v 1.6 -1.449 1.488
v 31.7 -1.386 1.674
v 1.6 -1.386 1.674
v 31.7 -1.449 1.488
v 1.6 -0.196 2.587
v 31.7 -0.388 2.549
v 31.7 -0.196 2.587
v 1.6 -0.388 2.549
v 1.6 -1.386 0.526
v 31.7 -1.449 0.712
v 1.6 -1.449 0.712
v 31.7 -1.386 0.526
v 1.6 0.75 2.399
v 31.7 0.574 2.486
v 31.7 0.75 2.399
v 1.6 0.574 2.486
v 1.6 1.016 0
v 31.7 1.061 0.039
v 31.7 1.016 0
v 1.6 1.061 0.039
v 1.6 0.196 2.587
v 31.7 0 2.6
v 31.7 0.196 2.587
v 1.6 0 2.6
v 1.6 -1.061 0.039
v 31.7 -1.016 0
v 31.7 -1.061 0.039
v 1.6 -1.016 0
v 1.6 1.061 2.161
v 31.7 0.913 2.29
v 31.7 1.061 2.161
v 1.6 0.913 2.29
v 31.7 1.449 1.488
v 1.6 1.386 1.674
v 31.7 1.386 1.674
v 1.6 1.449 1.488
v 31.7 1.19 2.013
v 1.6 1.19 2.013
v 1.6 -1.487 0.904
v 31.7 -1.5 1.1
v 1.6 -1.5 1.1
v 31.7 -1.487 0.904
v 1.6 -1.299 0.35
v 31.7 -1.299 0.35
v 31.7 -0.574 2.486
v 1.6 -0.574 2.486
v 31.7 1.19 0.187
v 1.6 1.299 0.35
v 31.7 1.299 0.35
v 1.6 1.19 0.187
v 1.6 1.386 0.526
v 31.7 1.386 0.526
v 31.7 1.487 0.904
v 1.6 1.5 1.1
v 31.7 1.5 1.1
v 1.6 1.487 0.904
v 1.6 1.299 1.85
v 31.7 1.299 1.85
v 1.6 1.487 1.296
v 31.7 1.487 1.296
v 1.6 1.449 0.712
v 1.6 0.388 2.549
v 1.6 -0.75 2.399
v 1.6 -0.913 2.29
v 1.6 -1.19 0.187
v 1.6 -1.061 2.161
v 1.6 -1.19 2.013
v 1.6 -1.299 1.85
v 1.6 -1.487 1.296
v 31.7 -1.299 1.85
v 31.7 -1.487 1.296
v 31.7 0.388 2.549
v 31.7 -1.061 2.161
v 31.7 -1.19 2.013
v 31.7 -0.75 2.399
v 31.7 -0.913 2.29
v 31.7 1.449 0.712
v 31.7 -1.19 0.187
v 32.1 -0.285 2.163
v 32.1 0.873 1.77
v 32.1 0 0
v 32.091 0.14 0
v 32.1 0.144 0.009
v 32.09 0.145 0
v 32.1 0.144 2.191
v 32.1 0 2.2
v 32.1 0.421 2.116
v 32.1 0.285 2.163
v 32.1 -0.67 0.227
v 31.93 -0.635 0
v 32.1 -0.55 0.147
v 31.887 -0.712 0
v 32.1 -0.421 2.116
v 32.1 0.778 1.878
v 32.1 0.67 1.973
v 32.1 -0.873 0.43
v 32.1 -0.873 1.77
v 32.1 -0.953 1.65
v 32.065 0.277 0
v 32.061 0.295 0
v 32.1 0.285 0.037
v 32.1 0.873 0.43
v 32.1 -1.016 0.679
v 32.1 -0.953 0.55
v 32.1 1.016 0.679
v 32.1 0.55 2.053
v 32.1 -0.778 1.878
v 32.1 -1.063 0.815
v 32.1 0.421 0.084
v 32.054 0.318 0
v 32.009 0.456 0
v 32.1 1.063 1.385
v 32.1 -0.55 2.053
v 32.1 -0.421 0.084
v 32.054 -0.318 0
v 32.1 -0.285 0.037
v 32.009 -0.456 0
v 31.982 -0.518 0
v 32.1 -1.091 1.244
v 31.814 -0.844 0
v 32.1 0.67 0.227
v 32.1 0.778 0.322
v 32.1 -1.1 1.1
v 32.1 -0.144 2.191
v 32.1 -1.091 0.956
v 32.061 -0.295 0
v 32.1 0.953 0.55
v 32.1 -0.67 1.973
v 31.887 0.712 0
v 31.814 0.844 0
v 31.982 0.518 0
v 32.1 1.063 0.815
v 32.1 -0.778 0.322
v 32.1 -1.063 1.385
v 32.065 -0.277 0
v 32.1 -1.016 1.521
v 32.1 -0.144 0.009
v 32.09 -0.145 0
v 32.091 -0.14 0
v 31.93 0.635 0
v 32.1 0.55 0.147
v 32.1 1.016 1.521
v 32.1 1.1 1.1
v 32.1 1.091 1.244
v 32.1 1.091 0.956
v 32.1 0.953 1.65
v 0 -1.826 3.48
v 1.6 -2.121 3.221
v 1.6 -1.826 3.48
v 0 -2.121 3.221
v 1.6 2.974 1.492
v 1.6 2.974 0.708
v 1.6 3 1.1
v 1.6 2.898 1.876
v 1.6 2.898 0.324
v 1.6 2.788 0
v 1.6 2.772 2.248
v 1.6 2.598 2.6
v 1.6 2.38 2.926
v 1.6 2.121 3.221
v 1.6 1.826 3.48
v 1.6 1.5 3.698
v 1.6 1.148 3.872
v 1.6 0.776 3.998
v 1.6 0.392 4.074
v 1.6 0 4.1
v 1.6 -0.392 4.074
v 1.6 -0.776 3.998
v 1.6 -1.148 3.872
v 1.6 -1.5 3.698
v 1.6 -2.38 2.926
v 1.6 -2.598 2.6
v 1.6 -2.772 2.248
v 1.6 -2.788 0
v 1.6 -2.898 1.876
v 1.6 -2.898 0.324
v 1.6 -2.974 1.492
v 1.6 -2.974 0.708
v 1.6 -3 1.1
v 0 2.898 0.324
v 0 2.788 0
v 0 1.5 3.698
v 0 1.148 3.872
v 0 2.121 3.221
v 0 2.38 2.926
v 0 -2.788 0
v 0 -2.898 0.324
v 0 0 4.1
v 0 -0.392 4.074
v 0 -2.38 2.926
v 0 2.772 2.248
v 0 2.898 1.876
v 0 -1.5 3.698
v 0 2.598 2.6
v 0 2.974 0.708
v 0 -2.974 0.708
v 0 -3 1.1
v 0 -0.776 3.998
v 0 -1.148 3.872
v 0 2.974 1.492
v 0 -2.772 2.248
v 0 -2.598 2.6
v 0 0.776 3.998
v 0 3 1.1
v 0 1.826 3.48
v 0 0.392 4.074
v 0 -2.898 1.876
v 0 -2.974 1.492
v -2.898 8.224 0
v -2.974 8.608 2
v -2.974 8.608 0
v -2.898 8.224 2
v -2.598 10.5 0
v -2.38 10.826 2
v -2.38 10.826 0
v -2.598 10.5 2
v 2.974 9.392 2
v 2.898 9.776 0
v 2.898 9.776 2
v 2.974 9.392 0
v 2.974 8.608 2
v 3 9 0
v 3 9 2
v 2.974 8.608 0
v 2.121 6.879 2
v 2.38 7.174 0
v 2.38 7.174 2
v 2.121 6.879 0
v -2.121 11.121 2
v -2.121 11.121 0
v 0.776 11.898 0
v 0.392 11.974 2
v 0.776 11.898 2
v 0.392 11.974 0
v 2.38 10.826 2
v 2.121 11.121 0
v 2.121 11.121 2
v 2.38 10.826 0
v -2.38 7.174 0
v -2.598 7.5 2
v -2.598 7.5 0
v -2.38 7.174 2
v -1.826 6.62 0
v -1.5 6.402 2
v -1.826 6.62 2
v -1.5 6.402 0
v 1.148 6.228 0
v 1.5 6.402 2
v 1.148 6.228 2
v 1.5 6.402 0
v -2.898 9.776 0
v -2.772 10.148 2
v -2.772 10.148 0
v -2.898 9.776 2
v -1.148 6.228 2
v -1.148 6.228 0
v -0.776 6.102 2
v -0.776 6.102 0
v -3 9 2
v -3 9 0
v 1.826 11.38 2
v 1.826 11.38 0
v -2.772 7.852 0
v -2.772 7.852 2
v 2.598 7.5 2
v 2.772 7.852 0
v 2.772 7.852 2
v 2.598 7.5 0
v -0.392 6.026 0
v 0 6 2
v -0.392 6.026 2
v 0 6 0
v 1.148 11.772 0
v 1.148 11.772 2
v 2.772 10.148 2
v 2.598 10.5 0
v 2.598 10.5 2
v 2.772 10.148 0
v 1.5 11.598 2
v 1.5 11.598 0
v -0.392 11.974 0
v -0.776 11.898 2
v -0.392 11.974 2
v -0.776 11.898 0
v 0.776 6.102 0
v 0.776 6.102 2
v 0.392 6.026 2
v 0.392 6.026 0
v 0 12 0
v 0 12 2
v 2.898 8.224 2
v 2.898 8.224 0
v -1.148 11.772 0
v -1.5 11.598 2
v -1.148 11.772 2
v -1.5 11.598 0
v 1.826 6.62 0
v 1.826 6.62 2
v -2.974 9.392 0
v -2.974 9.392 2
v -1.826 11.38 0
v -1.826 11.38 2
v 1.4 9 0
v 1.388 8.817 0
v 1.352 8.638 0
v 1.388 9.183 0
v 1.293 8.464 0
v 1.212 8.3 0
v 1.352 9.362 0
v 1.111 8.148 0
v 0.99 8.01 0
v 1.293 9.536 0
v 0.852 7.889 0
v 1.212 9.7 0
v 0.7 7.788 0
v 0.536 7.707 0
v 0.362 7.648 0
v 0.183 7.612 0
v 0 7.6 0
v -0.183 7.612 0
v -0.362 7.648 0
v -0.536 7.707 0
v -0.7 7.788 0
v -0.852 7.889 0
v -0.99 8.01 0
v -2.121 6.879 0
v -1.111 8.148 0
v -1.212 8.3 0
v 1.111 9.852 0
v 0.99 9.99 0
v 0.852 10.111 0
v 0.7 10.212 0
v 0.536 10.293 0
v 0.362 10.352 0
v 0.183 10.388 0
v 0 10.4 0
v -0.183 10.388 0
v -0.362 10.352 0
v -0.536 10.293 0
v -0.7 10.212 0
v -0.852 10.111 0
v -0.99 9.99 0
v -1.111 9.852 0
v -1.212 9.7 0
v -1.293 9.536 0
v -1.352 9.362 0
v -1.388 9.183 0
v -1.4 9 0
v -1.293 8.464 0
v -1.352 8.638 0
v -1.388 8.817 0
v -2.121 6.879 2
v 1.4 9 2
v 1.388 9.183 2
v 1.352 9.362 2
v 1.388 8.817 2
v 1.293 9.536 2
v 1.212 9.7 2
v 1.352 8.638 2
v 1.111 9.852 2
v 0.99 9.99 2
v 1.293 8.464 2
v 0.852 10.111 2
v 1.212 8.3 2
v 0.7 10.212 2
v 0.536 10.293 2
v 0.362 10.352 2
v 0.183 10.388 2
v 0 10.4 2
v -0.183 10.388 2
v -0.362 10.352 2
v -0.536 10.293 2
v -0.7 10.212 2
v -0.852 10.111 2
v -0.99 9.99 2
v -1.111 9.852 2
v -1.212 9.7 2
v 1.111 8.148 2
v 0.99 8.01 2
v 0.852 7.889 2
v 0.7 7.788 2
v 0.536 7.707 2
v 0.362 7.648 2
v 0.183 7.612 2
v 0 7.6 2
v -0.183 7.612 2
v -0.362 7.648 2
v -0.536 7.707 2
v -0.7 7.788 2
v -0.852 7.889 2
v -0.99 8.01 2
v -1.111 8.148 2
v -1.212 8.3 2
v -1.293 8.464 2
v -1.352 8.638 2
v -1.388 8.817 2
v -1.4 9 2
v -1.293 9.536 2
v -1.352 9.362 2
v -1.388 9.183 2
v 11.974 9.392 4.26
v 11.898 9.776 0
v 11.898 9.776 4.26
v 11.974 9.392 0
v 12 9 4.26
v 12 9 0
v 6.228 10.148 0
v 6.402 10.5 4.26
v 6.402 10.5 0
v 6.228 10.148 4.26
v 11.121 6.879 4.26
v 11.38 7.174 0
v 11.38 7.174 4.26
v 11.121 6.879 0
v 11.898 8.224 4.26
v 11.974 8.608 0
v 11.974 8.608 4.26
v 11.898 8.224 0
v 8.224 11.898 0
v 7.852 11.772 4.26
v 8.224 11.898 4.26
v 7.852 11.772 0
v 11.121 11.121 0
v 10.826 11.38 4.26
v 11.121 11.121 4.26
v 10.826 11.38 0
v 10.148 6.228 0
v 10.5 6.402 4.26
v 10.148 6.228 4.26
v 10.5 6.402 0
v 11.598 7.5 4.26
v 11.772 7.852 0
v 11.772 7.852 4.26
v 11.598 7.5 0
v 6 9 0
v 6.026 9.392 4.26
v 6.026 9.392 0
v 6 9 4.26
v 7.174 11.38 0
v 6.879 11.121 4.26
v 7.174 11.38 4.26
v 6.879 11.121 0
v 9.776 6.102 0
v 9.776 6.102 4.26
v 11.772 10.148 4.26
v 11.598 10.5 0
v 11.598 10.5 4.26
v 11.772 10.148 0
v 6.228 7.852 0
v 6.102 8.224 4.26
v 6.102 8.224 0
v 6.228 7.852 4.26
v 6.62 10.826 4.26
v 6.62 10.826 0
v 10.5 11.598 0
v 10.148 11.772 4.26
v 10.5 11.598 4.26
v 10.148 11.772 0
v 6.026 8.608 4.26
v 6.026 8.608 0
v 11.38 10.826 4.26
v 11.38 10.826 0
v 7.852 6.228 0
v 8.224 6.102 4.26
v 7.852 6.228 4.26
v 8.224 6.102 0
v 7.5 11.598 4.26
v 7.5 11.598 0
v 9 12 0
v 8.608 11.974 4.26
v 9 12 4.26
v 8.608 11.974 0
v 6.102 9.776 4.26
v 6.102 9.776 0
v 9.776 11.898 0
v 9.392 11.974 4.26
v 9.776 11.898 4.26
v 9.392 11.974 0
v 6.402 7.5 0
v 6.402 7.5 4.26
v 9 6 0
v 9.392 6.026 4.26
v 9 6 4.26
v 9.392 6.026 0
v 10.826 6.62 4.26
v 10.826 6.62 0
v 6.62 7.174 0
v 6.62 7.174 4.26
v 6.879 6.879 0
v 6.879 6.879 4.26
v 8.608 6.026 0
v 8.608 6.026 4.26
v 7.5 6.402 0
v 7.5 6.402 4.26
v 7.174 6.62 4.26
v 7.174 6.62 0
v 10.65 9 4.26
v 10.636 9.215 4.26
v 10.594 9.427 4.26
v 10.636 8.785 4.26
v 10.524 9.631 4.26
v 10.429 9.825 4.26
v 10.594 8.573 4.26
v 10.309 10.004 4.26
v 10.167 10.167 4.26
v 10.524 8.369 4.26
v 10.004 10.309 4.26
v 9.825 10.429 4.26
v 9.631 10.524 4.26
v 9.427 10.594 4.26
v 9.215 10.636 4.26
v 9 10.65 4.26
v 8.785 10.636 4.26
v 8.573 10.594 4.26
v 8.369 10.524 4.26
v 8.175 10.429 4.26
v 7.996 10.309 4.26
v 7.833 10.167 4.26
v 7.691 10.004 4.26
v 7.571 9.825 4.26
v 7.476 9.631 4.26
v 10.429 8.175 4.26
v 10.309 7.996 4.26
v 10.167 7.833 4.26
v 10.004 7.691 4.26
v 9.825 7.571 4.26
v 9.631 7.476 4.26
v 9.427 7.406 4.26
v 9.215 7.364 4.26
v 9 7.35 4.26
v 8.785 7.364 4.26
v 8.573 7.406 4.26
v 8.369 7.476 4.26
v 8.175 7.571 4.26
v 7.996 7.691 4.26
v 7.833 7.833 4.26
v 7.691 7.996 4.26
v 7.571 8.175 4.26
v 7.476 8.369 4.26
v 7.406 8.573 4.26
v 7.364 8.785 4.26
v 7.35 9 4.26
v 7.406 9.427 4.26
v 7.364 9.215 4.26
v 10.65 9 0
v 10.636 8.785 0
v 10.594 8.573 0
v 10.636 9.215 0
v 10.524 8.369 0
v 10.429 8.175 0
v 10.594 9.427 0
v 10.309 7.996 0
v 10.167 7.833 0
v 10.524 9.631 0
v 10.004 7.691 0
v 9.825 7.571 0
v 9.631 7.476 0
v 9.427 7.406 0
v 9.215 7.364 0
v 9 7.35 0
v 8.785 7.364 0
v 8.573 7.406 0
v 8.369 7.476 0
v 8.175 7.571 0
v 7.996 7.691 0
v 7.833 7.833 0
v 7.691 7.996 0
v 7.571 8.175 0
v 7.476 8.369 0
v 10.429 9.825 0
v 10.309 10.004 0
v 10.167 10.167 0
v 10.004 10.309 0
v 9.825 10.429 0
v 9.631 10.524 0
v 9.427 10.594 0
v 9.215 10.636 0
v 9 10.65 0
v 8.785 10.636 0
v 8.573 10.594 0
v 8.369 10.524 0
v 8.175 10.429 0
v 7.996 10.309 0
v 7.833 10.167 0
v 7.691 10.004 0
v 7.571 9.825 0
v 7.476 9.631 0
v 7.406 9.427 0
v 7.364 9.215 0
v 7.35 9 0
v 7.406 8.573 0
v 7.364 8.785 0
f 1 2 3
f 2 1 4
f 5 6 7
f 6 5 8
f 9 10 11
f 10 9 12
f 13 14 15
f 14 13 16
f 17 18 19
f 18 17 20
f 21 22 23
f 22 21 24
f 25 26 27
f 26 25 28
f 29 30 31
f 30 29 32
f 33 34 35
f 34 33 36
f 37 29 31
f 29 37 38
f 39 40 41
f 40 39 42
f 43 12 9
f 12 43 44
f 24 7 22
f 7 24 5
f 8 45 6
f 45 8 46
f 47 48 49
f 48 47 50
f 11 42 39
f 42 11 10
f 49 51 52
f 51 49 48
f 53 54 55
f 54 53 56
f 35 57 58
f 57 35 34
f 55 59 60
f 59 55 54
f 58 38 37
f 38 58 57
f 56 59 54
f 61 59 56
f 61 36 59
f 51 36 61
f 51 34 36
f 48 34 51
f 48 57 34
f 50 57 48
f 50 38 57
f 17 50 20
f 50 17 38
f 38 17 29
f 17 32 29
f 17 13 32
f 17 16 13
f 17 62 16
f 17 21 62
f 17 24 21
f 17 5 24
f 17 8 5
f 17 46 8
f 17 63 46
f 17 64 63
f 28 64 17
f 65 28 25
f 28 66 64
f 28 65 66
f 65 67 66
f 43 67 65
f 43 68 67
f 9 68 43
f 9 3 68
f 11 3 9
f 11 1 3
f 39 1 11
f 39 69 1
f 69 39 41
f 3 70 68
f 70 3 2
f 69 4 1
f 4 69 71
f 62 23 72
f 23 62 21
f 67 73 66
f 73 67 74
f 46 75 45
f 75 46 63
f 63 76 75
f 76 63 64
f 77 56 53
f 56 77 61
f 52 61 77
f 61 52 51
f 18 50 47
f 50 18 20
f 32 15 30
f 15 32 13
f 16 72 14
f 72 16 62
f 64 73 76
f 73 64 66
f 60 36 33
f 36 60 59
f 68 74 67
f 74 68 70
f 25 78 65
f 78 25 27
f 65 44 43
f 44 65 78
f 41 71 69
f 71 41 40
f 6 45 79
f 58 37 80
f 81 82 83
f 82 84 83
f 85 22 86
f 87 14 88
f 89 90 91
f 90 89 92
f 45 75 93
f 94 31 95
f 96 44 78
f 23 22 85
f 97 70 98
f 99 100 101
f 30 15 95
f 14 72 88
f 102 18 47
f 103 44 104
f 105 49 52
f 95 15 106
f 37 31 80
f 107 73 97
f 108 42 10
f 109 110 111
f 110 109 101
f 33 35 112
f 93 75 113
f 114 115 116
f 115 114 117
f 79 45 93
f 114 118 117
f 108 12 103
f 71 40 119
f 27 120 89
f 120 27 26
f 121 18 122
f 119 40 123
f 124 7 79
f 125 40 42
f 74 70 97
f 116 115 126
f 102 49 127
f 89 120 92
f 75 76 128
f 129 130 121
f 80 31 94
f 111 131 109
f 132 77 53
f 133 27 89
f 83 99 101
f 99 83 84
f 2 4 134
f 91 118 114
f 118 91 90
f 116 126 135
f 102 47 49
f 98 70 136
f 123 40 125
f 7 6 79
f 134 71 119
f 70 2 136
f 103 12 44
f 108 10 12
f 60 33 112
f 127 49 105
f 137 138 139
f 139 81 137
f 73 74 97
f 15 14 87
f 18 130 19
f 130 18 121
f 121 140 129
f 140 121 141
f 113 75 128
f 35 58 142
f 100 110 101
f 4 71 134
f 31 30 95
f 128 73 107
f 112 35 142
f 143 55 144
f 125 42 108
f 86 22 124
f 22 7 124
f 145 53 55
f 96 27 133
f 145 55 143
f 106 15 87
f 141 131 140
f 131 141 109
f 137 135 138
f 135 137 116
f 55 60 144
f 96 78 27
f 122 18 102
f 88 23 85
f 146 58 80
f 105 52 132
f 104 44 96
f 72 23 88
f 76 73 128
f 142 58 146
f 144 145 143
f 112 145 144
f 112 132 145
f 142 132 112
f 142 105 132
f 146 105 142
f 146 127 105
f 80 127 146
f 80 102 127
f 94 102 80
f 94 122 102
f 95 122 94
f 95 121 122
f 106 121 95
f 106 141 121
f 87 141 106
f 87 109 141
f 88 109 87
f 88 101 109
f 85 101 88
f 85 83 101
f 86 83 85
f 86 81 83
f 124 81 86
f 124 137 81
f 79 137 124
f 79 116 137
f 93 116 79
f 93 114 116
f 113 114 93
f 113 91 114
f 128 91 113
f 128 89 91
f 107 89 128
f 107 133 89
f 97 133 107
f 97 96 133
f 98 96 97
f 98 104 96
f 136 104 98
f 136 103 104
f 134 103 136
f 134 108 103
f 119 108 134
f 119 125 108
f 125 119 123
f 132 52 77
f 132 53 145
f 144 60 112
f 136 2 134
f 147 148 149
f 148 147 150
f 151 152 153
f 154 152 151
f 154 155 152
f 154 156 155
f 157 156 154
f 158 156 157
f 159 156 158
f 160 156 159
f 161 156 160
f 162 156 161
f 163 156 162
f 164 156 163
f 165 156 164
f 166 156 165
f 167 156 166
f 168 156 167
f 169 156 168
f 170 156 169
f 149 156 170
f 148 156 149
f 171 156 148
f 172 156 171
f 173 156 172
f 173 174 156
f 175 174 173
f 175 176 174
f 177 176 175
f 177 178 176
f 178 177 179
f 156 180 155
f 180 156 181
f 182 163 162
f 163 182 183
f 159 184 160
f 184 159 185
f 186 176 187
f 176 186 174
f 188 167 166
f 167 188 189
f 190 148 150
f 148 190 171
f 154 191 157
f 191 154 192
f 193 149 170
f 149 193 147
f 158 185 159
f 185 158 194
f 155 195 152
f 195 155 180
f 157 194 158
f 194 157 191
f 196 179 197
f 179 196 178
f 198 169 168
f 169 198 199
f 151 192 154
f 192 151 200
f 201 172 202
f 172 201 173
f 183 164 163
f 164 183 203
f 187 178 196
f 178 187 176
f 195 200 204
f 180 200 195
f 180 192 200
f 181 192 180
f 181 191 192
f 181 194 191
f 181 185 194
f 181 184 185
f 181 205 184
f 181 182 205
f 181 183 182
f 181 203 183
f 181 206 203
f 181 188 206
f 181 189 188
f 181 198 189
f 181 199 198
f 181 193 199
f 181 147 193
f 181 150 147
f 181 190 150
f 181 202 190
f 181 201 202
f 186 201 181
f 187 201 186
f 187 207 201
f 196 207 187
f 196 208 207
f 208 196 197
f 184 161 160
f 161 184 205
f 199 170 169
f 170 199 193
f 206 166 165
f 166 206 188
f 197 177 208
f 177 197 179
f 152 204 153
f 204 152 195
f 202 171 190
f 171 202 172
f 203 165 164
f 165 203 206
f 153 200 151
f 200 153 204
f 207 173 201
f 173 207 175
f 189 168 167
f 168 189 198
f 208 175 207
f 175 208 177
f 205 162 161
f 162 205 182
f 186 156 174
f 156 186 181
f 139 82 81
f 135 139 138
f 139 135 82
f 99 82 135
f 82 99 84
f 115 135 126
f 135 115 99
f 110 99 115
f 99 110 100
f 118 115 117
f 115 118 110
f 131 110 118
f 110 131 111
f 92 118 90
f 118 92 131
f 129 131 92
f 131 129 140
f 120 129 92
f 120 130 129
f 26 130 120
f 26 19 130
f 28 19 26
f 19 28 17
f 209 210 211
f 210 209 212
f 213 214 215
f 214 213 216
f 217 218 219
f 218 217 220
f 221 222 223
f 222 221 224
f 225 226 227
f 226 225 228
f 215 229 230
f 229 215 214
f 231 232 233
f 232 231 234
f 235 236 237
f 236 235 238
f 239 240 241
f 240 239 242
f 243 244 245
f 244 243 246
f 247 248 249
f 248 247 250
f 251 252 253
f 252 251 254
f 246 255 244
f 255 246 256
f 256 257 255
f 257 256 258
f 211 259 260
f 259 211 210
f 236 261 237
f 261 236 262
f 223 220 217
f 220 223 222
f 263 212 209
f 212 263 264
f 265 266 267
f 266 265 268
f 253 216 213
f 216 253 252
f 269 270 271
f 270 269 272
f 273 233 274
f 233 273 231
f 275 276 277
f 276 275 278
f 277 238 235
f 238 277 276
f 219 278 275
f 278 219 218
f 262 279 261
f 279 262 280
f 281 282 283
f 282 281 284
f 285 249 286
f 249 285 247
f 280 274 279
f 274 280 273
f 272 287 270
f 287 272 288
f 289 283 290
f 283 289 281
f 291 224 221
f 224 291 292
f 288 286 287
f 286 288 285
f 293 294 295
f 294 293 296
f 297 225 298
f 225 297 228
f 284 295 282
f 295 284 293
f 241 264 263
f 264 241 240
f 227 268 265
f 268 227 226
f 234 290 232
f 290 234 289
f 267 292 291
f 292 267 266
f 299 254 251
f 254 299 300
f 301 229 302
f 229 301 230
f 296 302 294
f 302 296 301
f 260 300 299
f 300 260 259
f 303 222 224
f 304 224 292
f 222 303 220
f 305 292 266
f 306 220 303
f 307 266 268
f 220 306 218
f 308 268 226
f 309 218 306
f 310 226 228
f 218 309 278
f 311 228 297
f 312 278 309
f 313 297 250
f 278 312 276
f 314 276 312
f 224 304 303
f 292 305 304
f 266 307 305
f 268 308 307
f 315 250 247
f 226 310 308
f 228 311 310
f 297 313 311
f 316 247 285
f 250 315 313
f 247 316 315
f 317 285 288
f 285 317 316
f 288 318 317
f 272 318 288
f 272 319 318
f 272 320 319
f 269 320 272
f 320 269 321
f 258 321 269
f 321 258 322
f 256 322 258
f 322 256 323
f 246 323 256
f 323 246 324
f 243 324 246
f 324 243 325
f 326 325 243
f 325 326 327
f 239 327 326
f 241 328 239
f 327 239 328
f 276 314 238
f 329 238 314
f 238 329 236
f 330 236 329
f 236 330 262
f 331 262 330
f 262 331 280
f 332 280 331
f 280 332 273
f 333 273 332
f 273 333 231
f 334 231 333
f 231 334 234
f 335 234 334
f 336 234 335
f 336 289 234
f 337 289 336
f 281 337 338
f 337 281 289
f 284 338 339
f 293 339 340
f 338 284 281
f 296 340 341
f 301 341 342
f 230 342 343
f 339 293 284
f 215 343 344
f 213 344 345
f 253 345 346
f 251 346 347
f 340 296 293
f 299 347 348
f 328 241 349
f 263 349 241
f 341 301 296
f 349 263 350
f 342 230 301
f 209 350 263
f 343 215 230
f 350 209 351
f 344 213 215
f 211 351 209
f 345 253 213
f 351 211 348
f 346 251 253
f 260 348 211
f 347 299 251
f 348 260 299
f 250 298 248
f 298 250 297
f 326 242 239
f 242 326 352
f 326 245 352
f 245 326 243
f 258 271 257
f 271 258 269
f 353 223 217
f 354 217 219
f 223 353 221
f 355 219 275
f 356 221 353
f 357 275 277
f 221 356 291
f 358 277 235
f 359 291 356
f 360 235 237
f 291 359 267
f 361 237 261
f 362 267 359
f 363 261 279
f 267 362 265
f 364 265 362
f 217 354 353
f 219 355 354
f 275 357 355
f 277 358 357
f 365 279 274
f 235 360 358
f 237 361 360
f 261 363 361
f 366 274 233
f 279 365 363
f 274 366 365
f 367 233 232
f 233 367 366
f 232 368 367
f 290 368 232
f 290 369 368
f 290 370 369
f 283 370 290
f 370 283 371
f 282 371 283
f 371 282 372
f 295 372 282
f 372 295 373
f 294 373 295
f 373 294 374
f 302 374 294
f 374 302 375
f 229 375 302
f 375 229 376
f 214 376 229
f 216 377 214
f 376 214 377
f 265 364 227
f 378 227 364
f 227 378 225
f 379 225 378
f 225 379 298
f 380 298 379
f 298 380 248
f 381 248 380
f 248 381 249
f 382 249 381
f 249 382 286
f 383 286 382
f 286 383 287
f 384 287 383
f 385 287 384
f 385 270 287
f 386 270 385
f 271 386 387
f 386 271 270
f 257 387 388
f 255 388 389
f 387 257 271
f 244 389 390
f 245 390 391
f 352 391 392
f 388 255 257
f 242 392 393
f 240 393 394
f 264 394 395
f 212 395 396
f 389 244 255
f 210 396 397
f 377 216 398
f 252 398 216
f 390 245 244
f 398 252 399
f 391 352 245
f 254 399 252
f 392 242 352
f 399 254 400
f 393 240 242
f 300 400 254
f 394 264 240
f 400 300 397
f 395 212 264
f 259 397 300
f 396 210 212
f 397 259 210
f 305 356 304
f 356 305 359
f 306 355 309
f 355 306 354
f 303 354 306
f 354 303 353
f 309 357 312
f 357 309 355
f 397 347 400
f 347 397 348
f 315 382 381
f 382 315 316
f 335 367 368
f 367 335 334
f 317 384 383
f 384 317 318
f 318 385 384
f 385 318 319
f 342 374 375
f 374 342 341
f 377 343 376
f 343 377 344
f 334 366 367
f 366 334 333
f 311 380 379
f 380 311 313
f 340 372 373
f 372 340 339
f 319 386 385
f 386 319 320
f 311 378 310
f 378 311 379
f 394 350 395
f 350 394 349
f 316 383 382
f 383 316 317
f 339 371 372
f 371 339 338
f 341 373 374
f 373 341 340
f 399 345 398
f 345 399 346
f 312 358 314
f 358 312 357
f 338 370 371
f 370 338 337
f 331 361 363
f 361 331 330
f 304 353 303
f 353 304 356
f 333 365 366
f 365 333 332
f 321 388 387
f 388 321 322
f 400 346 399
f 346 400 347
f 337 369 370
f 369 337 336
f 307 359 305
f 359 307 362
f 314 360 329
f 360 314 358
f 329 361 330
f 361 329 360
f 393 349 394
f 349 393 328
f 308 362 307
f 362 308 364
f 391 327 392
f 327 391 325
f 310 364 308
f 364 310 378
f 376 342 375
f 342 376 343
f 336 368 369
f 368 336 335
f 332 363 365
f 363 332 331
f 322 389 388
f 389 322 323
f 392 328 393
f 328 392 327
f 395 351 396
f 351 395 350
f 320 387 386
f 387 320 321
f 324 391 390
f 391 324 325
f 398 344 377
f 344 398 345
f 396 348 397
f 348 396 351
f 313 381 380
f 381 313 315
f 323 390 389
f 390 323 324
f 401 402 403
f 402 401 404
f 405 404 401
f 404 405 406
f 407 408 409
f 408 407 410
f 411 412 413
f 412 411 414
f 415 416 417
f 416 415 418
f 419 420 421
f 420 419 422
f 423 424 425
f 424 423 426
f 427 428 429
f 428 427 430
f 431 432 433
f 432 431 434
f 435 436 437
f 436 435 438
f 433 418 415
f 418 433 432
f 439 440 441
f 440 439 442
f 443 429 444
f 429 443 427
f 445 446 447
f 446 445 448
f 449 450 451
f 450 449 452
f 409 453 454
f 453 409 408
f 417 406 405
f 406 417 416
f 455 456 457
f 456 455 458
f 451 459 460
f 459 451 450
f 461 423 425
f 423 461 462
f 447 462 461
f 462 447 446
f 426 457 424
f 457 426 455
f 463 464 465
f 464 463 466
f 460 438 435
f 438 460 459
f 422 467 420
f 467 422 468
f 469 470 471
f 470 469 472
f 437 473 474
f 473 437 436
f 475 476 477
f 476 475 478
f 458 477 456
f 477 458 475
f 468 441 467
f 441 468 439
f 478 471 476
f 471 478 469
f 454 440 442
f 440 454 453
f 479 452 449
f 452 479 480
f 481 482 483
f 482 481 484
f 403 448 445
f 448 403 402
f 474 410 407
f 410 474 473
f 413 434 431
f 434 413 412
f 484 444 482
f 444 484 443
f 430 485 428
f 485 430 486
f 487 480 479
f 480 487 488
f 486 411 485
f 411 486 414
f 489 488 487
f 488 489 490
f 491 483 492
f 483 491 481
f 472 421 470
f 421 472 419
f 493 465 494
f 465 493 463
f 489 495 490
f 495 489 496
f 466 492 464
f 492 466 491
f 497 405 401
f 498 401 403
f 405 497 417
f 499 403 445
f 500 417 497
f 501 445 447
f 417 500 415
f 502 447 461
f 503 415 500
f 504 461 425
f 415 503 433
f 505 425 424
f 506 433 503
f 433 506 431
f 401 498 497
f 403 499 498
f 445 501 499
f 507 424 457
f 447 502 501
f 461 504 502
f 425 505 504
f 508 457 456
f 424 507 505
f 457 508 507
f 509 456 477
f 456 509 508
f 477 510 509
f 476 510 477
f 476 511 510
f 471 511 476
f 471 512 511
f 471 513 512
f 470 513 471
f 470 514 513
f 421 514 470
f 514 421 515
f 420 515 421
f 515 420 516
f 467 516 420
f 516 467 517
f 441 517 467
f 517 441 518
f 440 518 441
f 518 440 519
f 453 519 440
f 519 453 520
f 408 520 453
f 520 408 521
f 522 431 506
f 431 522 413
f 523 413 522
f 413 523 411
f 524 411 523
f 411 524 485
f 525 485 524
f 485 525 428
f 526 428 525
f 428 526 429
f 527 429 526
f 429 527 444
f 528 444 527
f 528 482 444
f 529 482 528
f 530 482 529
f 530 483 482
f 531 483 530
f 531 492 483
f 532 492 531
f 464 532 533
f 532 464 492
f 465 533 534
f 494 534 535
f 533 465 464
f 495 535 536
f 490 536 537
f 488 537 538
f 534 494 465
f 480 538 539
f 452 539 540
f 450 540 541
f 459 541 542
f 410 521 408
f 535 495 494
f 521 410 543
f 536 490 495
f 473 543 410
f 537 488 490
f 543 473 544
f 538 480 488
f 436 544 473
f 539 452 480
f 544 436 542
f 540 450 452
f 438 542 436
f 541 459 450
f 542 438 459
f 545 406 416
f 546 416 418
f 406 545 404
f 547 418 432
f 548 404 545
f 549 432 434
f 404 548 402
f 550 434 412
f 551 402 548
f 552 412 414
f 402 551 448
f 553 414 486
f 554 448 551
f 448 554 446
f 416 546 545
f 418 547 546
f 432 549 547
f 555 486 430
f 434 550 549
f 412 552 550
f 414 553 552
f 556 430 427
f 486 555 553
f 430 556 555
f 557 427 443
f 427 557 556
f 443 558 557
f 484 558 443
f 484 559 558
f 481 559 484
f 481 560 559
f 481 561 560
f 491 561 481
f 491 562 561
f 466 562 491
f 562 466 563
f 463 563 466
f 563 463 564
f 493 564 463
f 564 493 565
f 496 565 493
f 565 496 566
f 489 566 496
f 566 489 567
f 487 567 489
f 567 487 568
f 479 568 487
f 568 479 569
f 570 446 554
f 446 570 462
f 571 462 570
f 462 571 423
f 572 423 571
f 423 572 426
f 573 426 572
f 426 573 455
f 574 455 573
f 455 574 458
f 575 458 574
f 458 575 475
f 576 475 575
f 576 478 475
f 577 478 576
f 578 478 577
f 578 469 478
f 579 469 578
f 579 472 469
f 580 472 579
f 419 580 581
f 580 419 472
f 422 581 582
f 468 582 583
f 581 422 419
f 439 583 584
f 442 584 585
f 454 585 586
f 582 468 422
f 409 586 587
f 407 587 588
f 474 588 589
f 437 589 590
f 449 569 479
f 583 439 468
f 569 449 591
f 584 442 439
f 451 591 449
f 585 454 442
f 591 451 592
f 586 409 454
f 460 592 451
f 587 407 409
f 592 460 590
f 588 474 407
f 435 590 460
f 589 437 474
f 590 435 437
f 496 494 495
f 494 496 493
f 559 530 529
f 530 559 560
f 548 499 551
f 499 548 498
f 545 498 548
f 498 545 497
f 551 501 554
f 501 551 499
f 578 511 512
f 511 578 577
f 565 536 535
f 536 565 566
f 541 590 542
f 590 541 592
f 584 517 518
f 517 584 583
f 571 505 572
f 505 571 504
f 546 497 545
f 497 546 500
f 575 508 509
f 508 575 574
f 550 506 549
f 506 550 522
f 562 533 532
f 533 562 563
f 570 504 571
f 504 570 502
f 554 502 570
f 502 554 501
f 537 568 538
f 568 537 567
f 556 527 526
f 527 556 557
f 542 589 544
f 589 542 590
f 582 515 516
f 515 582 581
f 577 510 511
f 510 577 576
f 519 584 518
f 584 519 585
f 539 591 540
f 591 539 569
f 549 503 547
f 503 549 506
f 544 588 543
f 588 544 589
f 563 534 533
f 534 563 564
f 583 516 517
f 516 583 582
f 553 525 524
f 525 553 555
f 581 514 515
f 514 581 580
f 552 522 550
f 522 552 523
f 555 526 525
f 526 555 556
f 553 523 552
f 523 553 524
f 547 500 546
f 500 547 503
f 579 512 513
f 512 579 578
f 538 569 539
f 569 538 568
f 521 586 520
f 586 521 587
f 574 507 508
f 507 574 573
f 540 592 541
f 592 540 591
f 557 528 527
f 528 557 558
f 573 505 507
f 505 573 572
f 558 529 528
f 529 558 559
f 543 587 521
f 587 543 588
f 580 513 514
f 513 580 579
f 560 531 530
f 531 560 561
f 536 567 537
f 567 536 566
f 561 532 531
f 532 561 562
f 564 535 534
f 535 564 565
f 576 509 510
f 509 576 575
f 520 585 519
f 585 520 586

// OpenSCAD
// file: common-2020.scad
// Shared socket geometry for the scanner stand brackets.
// A socket holds the end of a 2020 profile running down -Z from its closed end at z=0.

$fn = 48;

profile     = 20;
clearance   = 0.25;   // per side; raise if the profile will not slide in
wall        = 4;
depth       = 30;     // how far a profile slides into a socket
screw_d     = 5.5;
screw_depth = [9, 22];

inner = profile + 2 * clearance;
outer = inner + 2 * wall;
far   = 400;          // long enough to clear anything a hull adds in a profile's path

module socket_body() translate([-outer / 2, -outer / 2, -depth]) cube([outer, outer, depth + wall]);

module socket_void() translate([-inner / 2, -inner / 2, -far]) cube([inner, inner, far]);

// M5 holes through the front and back walls, into T-nuts in the profile's slots.
module socket_screws(depths = screw_depth)
    for (d = depths)
        translate([0, 0, -d]) rotate([90, 0, 0]) cylinder(d = screw_d, h = outer + 2, center = true);
// main file
// Printed hinge pin for camera-mount.scad.
// Drill the camera case's two knuckles out to 3 mm. Push the pin through one arm,
// the case's first knuckle, the spacer, the case's second knuckle and the other arm,
// then press the cap onto its end: that squeezes the arms onto the case, so the
// hinge holds the camera where it is set.
// Print lying down on the flats, PETG, 100% infill, no supports.

include <common-2020.scad>

pin_d   = 3;
pin_len = outer + 2;   // through both of the mount's arms, plus the cap
head_d  = 6;
head_h  = 1.6;
cap_h   = 2;
press   = 0.2;      // how much tighter the cap's hole is than the pin
flat    = 0.4;      // how much comes off the bottom, so it lies still on the bed
tip     = 0.4;      // chamfer that leads the pin into the holes
spacer  = 4.26;     // fills the 4.66 mm gap between the case's knuckles, less play

module pin() {
    cylinder(d = head_d, h = head_h);
    translate([0, 0, head_h]) {
        cylinder(d = pin_d, h = pin_len - tip);
        translate([0, 0, pin_len - tip]) cylinder(d1 = pin_d, d2 = pin_d - 2 * tip, h = tip);
    }
}

module ring(h, hole) difference() {
    cylinder(d = head_d, h = h);
    translate([0, 0, -1]) cylinder(d = hole, h = h + 2);
}

// Pin lies along X, cut flat underneath; the cap and spacer stand on their faces beside it.
difference() {
    translate([0, 0, pin_d / 2 - flat]) rotate([0, 90, 0]) pin();
    translate([-50, -50, -100]) cube(100);
}
translate([0, head_d + 3, 0]) ring(cap_h, pin_d - press);
translate([head_d + 3, head_d + 3, 0]) ring(spacer, pin_d + 0.3);
